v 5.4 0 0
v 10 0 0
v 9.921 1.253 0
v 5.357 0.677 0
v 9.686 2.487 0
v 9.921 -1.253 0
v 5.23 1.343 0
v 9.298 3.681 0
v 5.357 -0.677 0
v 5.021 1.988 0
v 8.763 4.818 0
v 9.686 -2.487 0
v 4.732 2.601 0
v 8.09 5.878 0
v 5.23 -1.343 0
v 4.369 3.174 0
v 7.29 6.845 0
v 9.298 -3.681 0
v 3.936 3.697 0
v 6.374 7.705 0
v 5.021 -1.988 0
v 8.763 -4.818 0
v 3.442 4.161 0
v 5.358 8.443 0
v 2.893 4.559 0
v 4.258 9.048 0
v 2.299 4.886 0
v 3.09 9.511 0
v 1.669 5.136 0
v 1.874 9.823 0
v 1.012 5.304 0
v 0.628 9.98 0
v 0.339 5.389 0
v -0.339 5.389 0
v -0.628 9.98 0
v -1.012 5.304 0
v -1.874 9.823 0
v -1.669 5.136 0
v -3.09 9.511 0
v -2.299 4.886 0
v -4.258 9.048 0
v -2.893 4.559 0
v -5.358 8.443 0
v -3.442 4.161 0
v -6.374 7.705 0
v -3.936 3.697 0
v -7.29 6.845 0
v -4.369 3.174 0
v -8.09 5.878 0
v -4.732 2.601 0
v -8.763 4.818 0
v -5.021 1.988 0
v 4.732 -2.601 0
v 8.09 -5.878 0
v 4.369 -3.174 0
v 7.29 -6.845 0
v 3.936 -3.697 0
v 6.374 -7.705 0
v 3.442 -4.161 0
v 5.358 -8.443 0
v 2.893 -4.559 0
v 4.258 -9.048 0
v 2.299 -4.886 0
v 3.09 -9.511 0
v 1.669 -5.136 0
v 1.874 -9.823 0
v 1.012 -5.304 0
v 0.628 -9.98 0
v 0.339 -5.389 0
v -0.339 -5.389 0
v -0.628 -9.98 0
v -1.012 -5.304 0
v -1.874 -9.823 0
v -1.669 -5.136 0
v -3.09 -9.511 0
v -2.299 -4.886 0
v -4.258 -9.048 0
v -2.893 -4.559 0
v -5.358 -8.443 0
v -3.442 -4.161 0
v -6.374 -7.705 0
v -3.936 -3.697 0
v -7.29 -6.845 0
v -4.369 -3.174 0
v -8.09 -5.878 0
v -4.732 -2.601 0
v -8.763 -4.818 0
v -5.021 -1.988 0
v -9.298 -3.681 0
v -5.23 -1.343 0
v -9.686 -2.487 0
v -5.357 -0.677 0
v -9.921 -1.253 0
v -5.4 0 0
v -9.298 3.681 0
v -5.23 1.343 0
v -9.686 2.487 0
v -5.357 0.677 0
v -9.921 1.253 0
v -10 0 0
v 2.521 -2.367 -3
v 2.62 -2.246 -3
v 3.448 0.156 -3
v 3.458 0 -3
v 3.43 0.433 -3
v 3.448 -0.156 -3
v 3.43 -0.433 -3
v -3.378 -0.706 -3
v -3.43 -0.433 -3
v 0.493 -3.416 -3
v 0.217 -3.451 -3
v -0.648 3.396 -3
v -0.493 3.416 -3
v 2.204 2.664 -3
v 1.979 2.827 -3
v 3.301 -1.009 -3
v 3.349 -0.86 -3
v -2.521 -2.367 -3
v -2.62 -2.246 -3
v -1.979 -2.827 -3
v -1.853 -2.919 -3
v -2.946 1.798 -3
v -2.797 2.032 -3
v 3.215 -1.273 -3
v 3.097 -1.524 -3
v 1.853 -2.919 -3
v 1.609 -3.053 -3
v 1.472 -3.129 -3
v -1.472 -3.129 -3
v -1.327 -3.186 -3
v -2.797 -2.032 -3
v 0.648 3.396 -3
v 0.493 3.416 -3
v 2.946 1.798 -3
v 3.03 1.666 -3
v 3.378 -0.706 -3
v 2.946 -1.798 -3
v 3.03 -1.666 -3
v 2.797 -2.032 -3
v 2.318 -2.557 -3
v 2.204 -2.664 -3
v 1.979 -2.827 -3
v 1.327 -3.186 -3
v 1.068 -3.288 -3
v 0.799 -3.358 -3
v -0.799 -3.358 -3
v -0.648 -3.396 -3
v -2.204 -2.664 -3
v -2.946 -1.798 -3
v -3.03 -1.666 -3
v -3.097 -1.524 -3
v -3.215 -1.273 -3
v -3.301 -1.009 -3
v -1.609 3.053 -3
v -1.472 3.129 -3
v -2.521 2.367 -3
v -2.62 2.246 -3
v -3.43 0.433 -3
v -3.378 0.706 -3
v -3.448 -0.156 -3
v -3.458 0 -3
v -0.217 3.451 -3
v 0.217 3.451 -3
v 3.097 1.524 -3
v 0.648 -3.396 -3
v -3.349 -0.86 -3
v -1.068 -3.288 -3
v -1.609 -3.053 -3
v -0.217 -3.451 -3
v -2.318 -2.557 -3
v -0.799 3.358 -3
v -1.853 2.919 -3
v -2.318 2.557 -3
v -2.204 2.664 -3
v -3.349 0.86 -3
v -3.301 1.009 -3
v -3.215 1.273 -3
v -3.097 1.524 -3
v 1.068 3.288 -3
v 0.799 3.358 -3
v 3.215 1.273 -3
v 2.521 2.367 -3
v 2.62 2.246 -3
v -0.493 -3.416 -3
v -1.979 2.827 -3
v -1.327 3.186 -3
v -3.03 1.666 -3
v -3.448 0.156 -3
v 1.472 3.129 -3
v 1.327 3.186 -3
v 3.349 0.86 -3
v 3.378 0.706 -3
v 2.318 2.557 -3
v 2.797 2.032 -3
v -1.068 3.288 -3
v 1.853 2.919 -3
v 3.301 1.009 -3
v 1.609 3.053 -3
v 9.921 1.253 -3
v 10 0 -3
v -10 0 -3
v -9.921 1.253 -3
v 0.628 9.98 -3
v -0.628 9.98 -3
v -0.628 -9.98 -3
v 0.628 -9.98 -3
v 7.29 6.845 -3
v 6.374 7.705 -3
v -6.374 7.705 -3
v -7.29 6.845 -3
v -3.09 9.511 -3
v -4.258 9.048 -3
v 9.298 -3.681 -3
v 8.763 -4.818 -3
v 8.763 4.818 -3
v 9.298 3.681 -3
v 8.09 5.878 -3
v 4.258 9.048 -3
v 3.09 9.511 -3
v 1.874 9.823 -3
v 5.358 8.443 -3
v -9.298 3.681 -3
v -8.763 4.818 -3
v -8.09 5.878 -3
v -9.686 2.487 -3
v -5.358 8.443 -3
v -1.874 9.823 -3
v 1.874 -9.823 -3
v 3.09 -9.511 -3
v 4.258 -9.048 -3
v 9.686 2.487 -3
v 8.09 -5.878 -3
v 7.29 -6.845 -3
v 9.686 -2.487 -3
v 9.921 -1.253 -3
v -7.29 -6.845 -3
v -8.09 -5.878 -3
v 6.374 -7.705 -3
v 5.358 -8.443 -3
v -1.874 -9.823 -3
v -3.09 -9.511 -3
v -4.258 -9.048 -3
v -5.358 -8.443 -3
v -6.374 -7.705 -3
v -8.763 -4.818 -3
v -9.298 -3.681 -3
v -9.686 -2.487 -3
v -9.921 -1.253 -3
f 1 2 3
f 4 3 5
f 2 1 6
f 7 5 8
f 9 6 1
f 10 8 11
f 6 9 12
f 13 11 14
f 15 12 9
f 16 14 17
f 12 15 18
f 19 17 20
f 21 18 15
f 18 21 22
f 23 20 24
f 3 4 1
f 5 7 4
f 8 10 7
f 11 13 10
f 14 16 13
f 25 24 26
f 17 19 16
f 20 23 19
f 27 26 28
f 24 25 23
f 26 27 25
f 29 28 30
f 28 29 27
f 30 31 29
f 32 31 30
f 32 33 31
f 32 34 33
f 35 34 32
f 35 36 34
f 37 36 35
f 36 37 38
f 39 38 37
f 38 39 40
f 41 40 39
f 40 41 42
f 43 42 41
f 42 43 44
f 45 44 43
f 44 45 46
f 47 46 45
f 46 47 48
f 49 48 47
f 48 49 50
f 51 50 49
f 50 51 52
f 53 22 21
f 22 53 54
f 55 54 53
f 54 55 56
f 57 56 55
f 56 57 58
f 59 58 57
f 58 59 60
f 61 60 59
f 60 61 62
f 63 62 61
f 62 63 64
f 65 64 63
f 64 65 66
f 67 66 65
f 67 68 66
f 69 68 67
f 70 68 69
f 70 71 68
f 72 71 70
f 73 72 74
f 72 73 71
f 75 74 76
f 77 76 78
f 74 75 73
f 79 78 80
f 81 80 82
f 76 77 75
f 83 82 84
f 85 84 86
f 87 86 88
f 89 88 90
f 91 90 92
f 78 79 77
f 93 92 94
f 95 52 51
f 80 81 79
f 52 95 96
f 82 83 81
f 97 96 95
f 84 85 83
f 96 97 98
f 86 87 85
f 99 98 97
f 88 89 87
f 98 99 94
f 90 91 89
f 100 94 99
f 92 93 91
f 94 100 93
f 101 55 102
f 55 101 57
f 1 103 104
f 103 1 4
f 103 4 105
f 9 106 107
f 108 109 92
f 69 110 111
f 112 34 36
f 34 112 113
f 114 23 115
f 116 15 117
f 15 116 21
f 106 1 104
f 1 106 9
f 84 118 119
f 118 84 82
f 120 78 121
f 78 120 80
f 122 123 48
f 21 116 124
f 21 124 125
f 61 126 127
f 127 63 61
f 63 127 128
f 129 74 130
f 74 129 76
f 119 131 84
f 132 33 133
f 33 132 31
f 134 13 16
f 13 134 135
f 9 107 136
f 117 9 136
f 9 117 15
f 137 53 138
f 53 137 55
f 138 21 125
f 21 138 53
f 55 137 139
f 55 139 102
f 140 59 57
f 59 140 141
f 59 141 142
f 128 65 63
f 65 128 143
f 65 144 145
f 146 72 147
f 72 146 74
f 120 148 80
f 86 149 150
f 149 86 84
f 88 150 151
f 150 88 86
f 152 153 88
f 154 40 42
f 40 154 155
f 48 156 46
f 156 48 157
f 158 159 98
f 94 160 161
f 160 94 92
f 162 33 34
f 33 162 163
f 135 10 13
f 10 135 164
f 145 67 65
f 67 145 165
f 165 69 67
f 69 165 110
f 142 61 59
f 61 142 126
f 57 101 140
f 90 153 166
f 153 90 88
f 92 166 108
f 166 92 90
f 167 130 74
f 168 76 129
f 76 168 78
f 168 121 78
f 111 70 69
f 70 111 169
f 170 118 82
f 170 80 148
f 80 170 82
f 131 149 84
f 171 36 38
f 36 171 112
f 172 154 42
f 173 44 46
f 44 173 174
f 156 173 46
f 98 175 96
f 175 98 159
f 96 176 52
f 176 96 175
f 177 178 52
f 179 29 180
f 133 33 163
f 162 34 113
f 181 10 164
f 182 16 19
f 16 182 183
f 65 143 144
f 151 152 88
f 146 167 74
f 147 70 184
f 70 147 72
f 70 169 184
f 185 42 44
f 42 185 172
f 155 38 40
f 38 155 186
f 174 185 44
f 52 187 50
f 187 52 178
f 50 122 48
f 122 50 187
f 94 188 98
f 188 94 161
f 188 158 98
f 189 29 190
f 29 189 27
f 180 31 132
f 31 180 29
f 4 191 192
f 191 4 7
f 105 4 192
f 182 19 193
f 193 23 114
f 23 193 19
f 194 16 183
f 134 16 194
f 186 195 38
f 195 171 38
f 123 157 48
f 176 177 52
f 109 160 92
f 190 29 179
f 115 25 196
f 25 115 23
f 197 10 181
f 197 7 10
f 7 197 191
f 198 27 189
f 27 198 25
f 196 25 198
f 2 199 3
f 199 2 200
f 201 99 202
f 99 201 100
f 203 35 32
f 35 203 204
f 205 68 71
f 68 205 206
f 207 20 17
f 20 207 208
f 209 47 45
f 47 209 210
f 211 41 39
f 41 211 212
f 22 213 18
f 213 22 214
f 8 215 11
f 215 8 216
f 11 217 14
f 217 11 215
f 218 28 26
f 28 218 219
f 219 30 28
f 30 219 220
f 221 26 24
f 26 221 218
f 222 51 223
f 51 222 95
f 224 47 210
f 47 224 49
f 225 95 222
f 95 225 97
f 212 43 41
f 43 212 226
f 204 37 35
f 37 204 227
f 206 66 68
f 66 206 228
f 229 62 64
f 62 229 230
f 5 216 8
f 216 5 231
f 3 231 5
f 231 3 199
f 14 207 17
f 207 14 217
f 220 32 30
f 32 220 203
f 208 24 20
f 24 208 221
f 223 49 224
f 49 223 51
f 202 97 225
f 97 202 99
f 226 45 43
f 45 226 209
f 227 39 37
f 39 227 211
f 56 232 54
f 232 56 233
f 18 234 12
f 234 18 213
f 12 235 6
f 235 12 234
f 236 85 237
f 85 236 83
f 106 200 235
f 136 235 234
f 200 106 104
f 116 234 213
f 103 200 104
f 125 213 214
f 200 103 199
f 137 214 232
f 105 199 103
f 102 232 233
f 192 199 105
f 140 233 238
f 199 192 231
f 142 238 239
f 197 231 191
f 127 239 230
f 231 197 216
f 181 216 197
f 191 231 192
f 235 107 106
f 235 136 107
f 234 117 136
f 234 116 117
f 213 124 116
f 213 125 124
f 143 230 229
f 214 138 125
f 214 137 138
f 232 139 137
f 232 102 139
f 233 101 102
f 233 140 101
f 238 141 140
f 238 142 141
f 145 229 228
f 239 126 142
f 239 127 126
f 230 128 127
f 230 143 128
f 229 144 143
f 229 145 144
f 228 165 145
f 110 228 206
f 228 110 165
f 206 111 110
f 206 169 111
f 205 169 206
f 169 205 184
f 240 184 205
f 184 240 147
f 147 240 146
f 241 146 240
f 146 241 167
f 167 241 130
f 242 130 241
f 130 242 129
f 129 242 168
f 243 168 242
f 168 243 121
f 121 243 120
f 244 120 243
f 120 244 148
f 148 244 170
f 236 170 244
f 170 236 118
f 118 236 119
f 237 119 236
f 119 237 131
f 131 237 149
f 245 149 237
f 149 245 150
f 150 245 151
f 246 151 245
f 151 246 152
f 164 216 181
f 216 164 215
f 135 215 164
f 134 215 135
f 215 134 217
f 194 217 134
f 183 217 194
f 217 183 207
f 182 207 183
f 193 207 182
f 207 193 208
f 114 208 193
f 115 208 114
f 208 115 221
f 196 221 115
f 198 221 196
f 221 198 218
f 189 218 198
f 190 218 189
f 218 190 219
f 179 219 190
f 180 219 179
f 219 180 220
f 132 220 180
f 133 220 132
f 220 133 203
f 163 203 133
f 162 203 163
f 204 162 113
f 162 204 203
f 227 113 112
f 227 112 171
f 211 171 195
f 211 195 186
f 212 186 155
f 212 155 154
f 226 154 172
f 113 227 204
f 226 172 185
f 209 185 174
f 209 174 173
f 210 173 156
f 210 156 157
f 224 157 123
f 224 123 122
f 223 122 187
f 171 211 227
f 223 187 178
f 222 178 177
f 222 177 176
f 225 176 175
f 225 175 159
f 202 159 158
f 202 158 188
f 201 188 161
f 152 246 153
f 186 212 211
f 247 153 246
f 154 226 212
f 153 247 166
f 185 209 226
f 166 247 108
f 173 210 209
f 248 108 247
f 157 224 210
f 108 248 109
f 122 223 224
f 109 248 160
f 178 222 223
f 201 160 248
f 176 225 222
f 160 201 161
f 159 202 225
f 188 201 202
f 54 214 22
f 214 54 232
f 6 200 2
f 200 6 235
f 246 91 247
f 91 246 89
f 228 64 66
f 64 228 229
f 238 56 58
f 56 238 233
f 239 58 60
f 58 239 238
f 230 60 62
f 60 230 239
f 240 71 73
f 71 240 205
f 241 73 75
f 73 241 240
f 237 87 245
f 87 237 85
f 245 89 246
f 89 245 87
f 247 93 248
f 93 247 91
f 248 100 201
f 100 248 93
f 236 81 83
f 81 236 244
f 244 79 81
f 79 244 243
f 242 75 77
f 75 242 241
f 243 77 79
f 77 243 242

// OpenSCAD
$fn = 50;


difference() {
	union() {
		translate(v = [0, 0, -3.0000000000]) {
			cylinder(h = 3, r = 10.0000000000);
		}
		cylinder(h = 0, r = 19.0000000000);
	}
	union() {
		translate(v = [0, 0, 0]) {
			rotate(a = [0, 0, 0]) {
				difference() {
					union() {
						#translate(v = [0, 0, -3.0000000000]) {
							cylinder(h = 3, r = 2.6000000000);
						}
						#translate(v = [0, 0, -3.9000000000]) {
							cylinder(h = 3.9000000000, r = 10.0000000000, r1 = 2.8750000000, r2 = 5.4000000000);
						}
						#translate(v = [0, 0, -3.0000000000]) {
							cylinder(h = 3, r = 2.8750000000);
						}
						#translate(v = [0, 0, -3.0000000000]) {
							cylinder(h = 3, r = 2.6000000000);
						}
					}
					union();
				}
			}
		}
	}
}
